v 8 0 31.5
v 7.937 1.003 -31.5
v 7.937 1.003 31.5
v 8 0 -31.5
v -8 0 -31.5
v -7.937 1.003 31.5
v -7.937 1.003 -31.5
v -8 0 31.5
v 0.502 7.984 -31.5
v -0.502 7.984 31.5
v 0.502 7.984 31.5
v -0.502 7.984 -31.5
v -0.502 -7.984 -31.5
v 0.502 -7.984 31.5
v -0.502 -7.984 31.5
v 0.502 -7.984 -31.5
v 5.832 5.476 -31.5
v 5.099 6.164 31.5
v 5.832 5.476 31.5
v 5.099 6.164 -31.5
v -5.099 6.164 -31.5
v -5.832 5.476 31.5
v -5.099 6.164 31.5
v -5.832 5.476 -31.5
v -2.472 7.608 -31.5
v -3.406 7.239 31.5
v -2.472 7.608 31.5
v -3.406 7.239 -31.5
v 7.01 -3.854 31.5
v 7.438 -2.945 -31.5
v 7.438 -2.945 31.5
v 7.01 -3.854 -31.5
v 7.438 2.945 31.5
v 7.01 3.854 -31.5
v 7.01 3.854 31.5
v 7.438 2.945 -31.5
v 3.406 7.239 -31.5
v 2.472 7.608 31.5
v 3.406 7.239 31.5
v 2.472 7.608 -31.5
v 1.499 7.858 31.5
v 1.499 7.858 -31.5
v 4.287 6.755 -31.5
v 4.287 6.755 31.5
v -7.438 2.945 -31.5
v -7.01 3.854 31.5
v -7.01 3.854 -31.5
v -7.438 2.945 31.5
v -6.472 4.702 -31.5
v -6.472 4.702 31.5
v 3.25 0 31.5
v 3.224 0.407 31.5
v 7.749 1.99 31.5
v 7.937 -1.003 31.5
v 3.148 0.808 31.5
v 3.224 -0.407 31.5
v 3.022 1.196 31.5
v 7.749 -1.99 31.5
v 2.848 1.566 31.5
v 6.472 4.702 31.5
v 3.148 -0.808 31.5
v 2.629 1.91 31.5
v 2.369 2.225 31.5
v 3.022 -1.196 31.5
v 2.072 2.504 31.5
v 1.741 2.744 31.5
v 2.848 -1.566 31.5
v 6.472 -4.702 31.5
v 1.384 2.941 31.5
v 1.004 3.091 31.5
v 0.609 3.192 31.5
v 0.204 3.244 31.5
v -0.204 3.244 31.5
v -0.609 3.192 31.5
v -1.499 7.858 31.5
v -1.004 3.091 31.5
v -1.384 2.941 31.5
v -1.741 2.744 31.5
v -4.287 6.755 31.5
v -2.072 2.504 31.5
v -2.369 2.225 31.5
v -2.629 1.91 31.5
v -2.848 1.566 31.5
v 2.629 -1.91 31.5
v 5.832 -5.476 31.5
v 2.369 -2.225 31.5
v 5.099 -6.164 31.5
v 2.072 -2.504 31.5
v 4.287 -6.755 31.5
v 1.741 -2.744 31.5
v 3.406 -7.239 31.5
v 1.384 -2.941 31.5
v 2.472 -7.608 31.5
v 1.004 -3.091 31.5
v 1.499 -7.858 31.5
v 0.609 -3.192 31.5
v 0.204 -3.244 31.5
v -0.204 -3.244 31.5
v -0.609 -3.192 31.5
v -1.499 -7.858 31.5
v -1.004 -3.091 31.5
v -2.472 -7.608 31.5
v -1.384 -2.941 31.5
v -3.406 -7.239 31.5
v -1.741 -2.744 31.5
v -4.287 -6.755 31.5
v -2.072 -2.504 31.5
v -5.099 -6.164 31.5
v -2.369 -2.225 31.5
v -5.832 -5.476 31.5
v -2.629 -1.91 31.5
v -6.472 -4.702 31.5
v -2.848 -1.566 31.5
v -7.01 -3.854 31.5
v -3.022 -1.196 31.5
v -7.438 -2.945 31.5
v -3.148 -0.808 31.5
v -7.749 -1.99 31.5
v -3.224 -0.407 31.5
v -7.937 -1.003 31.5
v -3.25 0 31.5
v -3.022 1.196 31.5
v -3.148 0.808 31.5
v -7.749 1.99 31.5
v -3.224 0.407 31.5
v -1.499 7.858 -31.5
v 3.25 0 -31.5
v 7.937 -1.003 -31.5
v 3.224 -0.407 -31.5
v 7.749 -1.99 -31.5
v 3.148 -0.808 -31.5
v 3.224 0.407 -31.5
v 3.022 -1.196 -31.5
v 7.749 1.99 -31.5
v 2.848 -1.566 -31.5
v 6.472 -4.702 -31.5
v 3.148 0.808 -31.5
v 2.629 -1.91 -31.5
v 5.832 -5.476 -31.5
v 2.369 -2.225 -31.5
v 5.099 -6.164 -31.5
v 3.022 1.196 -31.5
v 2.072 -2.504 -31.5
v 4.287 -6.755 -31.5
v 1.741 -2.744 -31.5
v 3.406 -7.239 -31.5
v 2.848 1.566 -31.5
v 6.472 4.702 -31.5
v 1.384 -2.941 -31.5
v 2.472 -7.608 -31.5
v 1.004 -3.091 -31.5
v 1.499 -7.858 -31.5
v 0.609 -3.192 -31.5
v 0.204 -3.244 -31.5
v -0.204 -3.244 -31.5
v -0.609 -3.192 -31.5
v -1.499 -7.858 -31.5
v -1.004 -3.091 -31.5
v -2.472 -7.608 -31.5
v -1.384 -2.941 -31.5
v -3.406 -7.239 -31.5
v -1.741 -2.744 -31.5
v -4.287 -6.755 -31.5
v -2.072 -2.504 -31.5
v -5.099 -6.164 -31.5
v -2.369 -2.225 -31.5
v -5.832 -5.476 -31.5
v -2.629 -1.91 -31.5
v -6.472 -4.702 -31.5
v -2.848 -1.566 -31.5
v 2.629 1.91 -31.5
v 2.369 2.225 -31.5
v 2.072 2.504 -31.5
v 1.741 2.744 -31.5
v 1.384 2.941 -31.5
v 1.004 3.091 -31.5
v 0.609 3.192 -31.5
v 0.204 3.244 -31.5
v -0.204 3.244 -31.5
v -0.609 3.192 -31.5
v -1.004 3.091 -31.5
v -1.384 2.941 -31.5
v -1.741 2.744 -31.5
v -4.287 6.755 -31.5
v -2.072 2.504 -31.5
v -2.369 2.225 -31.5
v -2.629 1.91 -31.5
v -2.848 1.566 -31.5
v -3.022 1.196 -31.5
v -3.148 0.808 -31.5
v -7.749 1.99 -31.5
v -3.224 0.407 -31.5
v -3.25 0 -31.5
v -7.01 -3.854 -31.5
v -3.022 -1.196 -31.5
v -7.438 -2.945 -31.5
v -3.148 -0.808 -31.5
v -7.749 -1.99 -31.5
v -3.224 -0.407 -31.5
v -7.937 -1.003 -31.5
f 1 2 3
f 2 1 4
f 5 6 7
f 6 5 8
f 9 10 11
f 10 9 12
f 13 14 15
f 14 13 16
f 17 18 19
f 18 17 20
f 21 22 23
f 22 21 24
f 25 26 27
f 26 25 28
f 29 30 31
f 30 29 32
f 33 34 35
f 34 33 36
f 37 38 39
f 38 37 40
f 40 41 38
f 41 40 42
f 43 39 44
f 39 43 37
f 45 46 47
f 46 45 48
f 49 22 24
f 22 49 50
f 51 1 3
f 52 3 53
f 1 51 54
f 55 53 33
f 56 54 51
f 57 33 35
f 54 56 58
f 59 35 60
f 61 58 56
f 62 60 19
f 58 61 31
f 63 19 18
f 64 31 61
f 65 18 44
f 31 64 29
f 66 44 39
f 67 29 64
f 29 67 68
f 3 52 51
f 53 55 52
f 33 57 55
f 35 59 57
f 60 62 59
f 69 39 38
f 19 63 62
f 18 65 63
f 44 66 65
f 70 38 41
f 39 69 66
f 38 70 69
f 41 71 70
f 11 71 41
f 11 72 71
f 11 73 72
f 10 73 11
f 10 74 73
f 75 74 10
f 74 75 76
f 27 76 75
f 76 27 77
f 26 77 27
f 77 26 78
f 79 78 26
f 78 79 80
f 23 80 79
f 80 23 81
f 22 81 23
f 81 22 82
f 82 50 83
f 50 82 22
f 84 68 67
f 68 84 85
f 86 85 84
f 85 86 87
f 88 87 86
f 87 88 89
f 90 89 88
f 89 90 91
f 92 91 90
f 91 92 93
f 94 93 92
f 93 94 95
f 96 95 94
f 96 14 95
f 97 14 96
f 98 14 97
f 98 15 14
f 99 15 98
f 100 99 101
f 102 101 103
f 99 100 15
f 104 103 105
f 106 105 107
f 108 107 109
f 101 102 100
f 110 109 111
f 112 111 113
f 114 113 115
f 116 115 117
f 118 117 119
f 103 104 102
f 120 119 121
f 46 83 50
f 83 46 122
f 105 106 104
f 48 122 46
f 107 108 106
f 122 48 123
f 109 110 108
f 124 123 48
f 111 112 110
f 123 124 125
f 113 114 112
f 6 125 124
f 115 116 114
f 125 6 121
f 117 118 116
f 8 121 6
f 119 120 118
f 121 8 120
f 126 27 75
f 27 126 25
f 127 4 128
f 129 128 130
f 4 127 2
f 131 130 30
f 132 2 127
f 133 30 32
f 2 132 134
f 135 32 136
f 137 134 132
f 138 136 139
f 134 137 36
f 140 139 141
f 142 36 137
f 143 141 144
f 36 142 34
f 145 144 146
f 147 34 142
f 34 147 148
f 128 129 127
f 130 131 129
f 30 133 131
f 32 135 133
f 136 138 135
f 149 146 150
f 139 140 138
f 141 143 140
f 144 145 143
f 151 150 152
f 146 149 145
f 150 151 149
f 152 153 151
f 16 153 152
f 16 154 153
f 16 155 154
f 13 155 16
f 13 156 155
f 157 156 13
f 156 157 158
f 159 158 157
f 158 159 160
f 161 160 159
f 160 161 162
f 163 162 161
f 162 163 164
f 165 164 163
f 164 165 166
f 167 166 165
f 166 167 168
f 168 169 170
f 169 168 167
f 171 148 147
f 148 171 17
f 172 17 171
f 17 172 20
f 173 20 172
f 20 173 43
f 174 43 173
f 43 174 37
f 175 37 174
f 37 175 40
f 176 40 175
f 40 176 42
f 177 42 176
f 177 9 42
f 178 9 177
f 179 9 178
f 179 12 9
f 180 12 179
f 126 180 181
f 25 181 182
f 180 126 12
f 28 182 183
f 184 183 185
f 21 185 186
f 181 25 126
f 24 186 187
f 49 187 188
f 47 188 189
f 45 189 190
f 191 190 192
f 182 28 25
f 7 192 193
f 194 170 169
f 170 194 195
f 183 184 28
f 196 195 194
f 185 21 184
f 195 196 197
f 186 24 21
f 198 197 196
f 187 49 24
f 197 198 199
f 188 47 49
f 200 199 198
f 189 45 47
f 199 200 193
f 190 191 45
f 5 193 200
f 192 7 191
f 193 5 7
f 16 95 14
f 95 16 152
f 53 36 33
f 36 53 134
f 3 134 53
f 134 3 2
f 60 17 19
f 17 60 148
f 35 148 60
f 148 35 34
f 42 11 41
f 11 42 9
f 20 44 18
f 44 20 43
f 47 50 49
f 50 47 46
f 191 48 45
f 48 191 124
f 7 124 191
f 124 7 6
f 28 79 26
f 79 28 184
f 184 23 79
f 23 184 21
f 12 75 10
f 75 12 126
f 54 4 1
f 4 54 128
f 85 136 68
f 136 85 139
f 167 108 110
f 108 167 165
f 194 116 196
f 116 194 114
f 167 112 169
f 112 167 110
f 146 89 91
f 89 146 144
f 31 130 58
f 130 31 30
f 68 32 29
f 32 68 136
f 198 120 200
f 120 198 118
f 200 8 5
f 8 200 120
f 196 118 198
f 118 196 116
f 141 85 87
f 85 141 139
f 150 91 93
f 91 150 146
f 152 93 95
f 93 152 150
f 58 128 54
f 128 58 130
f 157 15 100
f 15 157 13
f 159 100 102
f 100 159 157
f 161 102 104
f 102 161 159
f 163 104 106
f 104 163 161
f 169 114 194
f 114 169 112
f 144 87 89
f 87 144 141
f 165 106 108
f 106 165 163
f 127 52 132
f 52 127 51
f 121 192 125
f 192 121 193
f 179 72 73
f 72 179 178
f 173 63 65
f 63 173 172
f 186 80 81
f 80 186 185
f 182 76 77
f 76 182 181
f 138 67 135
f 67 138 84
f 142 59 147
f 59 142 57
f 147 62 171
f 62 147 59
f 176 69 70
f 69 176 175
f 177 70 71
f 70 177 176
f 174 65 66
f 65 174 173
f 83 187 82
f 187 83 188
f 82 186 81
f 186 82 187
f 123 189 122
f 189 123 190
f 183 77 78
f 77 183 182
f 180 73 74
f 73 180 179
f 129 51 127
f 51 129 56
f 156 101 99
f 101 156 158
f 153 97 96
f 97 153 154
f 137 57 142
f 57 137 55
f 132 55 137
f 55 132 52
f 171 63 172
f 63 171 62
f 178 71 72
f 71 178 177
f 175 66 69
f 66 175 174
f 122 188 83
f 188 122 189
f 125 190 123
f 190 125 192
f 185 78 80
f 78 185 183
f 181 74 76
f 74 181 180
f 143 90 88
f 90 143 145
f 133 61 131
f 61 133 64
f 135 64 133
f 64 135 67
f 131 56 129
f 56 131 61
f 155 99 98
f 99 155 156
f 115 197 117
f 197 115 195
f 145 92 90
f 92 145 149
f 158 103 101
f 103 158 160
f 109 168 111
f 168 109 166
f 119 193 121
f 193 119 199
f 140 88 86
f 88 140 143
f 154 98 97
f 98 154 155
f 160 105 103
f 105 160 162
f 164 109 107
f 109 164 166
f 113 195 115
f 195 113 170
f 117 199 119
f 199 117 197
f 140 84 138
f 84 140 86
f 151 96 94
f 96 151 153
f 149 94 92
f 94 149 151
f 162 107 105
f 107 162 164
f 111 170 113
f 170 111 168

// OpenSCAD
$fn = 50;


difference() {
	union() {
		translate(v = [0, 0, -31.5000000000]) {
			cylinder(h = 63, r = 8.0000000000);
		}
	}
	union() {
		translate(v = [0, 0, -100.0000000000]) {
			cylinder(h = 200, r = 3.2500000000);
		}
	}
}
